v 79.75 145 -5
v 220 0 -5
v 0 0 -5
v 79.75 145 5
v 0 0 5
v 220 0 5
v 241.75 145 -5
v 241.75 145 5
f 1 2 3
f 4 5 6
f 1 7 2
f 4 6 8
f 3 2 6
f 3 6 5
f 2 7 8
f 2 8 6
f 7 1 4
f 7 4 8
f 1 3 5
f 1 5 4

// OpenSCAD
polyhedron(points=[[79.75, 145.0, -5.0], [0.0, 0.0, -5.0], [220.0, 0.0, -5.0], [79.75, 145.0, 5.0], [0.0, 0.0, 5.0], [220.0, 0.0, 5.0], [241.75, 145.0, -5.0], [241.75, 145.0, 5.0]], faces=[[0, 2, 1], [3, 4, 5], [0, 6, 2], [3, 5, 7], [1, 2, 5], [1, 5, 4], [2, 6, 7], [2, 7, 5], [6, 0, 3], [6, 3, 7], [0, 1, 4], [0, 4, 3]], convexity=20);
